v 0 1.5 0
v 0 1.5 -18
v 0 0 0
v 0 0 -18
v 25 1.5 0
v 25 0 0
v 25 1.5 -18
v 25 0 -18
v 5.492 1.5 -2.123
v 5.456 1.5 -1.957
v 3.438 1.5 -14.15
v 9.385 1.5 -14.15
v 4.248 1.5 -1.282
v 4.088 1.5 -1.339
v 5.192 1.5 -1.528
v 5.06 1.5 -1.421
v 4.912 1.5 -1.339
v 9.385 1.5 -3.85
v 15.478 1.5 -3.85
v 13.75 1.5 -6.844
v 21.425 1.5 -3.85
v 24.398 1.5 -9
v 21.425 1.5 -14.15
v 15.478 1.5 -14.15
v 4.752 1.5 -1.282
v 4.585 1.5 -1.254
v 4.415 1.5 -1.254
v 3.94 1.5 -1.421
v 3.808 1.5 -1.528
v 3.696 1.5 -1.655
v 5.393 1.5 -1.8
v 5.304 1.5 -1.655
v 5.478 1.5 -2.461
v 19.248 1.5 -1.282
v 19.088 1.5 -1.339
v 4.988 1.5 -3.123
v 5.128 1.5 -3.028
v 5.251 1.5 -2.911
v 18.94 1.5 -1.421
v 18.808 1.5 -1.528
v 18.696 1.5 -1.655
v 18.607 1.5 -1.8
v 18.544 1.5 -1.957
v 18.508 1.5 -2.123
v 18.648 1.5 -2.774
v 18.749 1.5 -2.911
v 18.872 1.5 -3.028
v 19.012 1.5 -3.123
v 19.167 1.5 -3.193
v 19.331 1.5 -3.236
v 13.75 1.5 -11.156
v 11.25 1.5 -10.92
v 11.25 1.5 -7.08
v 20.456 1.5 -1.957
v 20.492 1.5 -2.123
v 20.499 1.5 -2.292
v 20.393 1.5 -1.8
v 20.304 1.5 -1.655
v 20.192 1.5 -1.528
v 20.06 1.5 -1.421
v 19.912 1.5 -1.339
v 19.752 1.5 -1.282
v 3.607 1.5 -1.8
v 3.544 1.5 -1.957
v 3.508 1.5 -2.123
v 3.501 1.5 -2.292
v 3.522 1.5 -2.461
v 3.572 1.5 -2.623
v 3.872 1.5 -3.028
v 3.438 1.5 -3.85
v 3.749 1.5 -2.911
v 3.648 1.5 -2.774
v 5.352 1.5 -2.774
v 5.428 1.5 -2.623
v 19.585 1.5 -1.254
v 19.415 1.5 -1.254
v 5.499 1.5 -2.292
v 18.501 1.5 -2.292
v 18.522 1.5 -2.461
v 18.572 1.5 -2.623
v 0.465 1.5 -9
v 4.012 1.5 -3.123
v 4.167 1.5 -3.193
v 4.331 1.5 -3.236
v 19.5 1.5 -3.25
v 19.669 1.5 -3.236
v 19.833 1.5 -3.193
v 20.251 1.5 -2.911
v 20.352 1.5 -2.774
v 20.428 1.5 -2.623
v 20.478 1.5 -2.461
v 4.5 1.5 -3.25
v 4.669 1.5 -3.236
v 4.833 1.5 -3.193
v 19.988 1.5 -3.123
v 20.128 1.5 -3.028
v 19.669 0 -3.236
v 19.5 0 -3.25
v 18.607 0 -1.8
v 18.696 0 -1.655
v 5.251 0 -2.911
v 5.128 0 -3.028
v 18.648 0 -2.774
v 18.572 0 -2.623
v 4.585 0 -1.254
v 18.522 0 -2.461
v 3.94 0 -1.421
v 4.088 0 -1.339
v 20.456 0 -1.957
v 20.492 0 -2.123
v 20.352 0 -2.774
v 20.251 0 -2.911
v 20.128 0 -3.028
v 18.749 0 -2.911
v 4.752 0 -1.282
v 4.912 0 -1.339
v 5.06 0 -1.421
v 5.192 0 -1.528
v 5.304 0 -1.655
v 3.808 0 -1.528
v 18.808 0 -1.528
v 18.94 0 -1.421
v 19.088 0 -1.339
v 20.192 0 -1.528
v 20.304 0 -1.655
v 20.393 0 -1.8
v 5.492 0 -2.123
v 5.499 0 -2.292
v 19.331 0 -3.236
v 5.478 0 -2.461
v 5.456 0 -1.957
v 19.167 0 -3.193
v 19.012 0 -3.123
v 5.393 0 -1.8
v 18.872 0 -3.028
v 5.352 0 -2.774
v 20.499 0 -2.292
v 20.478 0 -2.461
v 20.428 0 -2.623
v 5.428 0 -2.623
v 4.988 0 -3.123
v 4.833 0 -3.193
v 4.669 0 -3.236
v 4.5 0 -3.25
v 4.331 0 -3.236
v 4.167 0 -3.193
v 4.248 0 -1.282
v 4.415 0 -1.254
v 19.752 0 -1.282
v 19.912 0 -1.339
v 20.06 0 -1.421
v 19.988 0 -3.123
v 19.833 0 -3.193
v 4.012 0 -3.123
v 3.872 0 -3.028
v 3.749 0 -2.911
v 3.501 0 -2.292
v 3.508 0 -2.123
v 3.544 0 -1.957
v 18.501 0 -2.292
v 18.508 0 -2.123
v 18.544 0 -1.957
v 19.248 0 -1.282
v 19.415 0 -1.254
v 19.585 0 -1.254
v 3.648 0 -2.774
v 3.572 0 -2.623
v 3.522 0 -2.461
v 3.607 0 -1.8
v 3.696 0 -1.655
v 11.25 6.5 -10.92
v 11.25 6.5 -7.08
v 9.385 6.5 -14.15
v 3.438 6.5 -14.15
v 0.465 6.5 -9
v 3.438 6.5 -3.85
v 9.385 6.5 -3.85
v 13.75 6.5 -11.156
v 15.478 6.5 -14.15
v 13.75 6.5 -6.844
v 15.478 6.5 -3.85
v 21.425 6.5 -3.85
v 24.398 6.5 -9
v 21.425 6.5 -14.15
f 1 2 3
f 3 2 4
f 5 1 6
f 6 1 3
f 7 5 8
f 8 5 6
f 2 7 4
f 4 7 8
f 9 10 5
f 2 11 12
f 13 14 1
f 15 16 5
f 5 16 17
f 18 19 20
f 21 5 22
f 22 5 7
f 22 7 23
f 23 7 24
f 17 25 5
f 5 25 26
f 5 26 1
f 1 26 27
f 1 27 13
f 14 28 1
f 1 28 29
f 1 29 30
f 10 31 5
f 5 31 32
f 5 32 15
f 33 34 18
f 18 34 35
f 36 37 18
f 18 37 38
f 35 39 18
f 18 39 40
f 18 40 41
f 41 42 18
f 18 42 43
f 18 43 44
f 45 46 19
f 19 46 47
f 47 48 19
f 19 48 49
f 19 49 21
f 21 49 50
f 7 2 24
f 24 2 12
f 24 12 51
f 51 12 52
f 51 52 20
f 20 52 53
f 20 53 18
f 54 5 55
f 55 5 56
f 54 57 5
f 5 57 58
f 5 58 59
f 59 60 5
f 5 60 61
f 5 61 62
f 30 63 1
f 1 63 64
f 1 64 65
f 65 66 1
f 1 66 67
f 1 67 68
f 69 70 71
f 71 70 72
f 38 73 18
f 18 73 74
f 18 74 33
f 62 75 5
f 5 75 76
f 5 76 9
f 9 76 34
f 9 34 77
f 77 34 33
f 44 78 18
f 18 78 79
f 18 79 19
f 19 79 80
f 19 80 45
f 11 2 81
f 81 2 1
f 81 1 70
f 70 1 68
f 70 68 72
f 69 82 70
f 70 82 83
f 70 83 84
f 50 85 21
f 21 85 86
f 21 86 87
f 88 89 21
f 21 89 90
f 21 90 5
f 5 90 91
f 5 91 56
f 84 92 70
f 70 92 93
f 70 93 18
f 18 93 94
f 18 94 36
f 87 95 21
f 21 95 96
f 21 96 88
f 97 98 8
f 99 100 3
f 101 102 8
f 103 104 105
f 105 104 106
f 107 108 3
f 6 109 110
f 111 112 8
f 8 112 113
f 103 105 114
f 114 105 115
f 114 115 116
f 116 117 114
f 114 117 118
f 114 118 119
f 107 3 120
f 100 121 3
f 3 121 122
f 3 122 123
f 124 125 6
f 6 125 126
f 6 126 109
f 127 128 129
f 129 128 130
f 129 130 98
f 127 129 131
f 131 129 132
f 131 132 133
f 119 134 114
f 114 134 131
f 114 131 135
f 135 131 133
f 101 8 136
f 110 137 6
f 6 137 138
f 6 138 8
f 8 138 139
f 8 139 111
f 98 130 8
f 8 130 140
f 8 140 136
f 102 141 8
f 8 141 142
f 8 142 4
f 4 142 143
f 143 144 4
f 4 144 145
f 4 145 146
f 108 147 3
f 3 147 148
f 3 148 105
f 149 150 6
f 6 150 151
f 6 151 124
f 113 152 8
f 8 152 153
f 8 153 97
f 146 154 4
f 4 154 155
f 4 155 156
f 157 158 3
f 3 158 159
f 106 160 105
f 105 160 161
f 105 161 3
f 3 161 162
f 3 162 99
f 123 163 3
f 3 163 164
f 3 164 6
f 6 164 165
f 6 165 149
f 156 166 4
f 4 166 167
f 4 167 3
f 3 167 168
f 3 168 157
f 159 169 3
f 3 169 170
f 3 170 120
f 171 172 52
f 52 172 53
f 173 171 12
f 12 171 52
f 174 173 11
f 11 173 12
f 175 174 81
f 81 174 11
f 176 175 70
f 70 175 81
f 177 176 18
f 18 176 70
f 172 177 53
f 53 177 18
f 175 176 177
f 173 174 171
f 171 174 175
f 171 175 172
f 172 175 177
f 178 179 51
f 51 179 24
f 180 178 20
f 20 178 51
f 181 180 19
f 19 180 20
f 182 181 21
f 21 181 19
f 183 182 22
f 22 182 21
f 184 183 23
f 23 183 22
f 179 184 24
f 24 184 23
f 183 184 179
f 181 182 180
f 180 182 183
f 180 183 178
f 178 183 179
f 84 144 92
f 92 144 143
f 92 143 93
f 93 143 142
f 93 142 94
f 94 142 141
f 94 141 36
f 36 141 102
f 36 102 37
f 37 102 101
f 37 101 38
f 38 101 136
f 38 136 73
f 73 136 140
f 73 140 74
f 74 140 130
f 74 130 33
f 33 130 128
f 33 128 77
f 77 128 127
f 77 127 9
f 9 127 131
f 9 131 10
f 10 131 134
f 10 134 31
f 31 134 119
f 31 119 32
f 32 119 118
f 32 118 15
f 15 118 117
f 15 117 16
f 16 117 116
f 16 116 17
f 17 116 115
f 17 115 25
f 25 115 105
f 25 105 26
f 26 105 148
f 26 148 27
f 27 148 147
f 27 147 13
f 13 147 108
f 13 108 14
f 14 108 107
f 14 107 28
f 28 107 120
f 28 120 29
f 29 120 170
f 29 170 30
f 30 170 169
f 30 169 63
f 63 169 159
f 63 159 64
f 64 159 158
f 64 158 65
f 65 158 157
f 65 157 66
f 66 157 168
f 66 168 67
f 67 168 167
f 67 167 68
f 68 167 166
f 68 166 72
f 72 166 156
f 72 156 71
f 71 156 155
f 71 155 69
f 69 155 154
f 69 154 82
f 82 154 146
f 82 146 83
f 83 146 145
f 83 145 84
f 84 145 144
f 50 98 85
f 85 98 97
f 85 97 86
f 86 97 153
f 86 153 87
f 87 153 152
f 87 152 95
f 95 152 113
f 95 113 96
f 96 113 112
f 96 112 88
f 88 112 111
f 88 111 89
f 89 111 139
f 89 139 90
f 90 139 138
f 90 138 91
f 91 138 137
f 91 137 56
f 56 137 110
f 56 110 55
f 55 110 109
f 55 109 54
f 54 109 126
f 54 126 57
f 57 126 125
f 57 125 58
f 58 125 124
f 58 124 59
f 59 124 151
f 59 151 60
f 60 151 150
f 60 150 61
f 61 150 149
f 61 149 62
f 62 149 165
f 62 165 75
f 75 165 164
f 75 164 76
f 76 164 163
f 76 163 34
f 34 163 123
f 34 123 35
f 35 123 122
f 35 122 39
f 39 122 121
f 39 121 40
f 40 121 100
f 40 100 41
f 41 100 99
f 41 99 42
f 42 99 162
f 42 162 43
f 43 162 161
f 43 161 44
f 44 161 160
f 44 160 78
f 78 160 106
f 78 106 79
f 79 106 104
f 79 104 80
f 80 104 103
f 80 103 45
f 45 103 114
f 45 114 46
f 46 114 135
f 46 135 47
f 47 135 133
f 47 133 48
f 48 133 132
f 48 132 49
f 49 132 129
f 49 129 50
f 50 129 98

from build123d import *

# Parameters (mm, degrees)
SKETCH2_W           = 25
SKETCH2_H           = 18
BOSS_EXTRUDE1_DEPTH = 1.5
BOSS_EXTRUDE2_DEPTH = 5
SKETCH5_R           = 1
CUT_EXTRUDE1_DEPTH  = 1.5


with BuildPart() as part:
    # Sketch2 → Boss-Extrude1 (new body)
    with BuildSketch(Plane(origin=(0, 0, 0), x_dir=(1, 0, 0), z_dir=(0, 1, 0))):
        with Locations((12.5, 9)):
            Rectangle(SKETCH2_W, SKETCH2_H)
    extrude(amount=BOSS_EXTRUDE1_DEPTH)

    # Sketch3 → Boss-Extrude2 (add)
    with BuildSketch(Plane(origin=(0, 1.5, 0), x_dir=(1, 0, 0), z_dir=(0, 1, 0))):
        Polygon((3.438353886, 3.85), (9.385061659, 3.85), (11.25, 7.08016796), (11.25, 10.91983204), (9.385061659, 14.15), (3.438353886, 14.15), (0.465, 9), align=None)
        Polygon((13.75, 11.156403255), (13.75, 6.843596745), (15.478353886, 3.85), (21.425061659, 3.85), (24.398415545, 9), (21.425061659, 14.15), (15.478353886, 14.15), align=None)
    extrude(amount=BOSS_EXTRUDE2_DEPTH)

    # Sketch5 → Cut-Extrude1 (cut)
    with BuildSketch(Plane.XZ):
        with Locations((4.5, -2.25)):
            Circle(SKETCH5_R)
        with Locations((19.5, -2.25)):
            Circle(SKETCH5_R)
    extrude(amount=-CUT_EXTRUDE1_DEPTH, mode=Mode.SUBTRACT)


solid = part.part
